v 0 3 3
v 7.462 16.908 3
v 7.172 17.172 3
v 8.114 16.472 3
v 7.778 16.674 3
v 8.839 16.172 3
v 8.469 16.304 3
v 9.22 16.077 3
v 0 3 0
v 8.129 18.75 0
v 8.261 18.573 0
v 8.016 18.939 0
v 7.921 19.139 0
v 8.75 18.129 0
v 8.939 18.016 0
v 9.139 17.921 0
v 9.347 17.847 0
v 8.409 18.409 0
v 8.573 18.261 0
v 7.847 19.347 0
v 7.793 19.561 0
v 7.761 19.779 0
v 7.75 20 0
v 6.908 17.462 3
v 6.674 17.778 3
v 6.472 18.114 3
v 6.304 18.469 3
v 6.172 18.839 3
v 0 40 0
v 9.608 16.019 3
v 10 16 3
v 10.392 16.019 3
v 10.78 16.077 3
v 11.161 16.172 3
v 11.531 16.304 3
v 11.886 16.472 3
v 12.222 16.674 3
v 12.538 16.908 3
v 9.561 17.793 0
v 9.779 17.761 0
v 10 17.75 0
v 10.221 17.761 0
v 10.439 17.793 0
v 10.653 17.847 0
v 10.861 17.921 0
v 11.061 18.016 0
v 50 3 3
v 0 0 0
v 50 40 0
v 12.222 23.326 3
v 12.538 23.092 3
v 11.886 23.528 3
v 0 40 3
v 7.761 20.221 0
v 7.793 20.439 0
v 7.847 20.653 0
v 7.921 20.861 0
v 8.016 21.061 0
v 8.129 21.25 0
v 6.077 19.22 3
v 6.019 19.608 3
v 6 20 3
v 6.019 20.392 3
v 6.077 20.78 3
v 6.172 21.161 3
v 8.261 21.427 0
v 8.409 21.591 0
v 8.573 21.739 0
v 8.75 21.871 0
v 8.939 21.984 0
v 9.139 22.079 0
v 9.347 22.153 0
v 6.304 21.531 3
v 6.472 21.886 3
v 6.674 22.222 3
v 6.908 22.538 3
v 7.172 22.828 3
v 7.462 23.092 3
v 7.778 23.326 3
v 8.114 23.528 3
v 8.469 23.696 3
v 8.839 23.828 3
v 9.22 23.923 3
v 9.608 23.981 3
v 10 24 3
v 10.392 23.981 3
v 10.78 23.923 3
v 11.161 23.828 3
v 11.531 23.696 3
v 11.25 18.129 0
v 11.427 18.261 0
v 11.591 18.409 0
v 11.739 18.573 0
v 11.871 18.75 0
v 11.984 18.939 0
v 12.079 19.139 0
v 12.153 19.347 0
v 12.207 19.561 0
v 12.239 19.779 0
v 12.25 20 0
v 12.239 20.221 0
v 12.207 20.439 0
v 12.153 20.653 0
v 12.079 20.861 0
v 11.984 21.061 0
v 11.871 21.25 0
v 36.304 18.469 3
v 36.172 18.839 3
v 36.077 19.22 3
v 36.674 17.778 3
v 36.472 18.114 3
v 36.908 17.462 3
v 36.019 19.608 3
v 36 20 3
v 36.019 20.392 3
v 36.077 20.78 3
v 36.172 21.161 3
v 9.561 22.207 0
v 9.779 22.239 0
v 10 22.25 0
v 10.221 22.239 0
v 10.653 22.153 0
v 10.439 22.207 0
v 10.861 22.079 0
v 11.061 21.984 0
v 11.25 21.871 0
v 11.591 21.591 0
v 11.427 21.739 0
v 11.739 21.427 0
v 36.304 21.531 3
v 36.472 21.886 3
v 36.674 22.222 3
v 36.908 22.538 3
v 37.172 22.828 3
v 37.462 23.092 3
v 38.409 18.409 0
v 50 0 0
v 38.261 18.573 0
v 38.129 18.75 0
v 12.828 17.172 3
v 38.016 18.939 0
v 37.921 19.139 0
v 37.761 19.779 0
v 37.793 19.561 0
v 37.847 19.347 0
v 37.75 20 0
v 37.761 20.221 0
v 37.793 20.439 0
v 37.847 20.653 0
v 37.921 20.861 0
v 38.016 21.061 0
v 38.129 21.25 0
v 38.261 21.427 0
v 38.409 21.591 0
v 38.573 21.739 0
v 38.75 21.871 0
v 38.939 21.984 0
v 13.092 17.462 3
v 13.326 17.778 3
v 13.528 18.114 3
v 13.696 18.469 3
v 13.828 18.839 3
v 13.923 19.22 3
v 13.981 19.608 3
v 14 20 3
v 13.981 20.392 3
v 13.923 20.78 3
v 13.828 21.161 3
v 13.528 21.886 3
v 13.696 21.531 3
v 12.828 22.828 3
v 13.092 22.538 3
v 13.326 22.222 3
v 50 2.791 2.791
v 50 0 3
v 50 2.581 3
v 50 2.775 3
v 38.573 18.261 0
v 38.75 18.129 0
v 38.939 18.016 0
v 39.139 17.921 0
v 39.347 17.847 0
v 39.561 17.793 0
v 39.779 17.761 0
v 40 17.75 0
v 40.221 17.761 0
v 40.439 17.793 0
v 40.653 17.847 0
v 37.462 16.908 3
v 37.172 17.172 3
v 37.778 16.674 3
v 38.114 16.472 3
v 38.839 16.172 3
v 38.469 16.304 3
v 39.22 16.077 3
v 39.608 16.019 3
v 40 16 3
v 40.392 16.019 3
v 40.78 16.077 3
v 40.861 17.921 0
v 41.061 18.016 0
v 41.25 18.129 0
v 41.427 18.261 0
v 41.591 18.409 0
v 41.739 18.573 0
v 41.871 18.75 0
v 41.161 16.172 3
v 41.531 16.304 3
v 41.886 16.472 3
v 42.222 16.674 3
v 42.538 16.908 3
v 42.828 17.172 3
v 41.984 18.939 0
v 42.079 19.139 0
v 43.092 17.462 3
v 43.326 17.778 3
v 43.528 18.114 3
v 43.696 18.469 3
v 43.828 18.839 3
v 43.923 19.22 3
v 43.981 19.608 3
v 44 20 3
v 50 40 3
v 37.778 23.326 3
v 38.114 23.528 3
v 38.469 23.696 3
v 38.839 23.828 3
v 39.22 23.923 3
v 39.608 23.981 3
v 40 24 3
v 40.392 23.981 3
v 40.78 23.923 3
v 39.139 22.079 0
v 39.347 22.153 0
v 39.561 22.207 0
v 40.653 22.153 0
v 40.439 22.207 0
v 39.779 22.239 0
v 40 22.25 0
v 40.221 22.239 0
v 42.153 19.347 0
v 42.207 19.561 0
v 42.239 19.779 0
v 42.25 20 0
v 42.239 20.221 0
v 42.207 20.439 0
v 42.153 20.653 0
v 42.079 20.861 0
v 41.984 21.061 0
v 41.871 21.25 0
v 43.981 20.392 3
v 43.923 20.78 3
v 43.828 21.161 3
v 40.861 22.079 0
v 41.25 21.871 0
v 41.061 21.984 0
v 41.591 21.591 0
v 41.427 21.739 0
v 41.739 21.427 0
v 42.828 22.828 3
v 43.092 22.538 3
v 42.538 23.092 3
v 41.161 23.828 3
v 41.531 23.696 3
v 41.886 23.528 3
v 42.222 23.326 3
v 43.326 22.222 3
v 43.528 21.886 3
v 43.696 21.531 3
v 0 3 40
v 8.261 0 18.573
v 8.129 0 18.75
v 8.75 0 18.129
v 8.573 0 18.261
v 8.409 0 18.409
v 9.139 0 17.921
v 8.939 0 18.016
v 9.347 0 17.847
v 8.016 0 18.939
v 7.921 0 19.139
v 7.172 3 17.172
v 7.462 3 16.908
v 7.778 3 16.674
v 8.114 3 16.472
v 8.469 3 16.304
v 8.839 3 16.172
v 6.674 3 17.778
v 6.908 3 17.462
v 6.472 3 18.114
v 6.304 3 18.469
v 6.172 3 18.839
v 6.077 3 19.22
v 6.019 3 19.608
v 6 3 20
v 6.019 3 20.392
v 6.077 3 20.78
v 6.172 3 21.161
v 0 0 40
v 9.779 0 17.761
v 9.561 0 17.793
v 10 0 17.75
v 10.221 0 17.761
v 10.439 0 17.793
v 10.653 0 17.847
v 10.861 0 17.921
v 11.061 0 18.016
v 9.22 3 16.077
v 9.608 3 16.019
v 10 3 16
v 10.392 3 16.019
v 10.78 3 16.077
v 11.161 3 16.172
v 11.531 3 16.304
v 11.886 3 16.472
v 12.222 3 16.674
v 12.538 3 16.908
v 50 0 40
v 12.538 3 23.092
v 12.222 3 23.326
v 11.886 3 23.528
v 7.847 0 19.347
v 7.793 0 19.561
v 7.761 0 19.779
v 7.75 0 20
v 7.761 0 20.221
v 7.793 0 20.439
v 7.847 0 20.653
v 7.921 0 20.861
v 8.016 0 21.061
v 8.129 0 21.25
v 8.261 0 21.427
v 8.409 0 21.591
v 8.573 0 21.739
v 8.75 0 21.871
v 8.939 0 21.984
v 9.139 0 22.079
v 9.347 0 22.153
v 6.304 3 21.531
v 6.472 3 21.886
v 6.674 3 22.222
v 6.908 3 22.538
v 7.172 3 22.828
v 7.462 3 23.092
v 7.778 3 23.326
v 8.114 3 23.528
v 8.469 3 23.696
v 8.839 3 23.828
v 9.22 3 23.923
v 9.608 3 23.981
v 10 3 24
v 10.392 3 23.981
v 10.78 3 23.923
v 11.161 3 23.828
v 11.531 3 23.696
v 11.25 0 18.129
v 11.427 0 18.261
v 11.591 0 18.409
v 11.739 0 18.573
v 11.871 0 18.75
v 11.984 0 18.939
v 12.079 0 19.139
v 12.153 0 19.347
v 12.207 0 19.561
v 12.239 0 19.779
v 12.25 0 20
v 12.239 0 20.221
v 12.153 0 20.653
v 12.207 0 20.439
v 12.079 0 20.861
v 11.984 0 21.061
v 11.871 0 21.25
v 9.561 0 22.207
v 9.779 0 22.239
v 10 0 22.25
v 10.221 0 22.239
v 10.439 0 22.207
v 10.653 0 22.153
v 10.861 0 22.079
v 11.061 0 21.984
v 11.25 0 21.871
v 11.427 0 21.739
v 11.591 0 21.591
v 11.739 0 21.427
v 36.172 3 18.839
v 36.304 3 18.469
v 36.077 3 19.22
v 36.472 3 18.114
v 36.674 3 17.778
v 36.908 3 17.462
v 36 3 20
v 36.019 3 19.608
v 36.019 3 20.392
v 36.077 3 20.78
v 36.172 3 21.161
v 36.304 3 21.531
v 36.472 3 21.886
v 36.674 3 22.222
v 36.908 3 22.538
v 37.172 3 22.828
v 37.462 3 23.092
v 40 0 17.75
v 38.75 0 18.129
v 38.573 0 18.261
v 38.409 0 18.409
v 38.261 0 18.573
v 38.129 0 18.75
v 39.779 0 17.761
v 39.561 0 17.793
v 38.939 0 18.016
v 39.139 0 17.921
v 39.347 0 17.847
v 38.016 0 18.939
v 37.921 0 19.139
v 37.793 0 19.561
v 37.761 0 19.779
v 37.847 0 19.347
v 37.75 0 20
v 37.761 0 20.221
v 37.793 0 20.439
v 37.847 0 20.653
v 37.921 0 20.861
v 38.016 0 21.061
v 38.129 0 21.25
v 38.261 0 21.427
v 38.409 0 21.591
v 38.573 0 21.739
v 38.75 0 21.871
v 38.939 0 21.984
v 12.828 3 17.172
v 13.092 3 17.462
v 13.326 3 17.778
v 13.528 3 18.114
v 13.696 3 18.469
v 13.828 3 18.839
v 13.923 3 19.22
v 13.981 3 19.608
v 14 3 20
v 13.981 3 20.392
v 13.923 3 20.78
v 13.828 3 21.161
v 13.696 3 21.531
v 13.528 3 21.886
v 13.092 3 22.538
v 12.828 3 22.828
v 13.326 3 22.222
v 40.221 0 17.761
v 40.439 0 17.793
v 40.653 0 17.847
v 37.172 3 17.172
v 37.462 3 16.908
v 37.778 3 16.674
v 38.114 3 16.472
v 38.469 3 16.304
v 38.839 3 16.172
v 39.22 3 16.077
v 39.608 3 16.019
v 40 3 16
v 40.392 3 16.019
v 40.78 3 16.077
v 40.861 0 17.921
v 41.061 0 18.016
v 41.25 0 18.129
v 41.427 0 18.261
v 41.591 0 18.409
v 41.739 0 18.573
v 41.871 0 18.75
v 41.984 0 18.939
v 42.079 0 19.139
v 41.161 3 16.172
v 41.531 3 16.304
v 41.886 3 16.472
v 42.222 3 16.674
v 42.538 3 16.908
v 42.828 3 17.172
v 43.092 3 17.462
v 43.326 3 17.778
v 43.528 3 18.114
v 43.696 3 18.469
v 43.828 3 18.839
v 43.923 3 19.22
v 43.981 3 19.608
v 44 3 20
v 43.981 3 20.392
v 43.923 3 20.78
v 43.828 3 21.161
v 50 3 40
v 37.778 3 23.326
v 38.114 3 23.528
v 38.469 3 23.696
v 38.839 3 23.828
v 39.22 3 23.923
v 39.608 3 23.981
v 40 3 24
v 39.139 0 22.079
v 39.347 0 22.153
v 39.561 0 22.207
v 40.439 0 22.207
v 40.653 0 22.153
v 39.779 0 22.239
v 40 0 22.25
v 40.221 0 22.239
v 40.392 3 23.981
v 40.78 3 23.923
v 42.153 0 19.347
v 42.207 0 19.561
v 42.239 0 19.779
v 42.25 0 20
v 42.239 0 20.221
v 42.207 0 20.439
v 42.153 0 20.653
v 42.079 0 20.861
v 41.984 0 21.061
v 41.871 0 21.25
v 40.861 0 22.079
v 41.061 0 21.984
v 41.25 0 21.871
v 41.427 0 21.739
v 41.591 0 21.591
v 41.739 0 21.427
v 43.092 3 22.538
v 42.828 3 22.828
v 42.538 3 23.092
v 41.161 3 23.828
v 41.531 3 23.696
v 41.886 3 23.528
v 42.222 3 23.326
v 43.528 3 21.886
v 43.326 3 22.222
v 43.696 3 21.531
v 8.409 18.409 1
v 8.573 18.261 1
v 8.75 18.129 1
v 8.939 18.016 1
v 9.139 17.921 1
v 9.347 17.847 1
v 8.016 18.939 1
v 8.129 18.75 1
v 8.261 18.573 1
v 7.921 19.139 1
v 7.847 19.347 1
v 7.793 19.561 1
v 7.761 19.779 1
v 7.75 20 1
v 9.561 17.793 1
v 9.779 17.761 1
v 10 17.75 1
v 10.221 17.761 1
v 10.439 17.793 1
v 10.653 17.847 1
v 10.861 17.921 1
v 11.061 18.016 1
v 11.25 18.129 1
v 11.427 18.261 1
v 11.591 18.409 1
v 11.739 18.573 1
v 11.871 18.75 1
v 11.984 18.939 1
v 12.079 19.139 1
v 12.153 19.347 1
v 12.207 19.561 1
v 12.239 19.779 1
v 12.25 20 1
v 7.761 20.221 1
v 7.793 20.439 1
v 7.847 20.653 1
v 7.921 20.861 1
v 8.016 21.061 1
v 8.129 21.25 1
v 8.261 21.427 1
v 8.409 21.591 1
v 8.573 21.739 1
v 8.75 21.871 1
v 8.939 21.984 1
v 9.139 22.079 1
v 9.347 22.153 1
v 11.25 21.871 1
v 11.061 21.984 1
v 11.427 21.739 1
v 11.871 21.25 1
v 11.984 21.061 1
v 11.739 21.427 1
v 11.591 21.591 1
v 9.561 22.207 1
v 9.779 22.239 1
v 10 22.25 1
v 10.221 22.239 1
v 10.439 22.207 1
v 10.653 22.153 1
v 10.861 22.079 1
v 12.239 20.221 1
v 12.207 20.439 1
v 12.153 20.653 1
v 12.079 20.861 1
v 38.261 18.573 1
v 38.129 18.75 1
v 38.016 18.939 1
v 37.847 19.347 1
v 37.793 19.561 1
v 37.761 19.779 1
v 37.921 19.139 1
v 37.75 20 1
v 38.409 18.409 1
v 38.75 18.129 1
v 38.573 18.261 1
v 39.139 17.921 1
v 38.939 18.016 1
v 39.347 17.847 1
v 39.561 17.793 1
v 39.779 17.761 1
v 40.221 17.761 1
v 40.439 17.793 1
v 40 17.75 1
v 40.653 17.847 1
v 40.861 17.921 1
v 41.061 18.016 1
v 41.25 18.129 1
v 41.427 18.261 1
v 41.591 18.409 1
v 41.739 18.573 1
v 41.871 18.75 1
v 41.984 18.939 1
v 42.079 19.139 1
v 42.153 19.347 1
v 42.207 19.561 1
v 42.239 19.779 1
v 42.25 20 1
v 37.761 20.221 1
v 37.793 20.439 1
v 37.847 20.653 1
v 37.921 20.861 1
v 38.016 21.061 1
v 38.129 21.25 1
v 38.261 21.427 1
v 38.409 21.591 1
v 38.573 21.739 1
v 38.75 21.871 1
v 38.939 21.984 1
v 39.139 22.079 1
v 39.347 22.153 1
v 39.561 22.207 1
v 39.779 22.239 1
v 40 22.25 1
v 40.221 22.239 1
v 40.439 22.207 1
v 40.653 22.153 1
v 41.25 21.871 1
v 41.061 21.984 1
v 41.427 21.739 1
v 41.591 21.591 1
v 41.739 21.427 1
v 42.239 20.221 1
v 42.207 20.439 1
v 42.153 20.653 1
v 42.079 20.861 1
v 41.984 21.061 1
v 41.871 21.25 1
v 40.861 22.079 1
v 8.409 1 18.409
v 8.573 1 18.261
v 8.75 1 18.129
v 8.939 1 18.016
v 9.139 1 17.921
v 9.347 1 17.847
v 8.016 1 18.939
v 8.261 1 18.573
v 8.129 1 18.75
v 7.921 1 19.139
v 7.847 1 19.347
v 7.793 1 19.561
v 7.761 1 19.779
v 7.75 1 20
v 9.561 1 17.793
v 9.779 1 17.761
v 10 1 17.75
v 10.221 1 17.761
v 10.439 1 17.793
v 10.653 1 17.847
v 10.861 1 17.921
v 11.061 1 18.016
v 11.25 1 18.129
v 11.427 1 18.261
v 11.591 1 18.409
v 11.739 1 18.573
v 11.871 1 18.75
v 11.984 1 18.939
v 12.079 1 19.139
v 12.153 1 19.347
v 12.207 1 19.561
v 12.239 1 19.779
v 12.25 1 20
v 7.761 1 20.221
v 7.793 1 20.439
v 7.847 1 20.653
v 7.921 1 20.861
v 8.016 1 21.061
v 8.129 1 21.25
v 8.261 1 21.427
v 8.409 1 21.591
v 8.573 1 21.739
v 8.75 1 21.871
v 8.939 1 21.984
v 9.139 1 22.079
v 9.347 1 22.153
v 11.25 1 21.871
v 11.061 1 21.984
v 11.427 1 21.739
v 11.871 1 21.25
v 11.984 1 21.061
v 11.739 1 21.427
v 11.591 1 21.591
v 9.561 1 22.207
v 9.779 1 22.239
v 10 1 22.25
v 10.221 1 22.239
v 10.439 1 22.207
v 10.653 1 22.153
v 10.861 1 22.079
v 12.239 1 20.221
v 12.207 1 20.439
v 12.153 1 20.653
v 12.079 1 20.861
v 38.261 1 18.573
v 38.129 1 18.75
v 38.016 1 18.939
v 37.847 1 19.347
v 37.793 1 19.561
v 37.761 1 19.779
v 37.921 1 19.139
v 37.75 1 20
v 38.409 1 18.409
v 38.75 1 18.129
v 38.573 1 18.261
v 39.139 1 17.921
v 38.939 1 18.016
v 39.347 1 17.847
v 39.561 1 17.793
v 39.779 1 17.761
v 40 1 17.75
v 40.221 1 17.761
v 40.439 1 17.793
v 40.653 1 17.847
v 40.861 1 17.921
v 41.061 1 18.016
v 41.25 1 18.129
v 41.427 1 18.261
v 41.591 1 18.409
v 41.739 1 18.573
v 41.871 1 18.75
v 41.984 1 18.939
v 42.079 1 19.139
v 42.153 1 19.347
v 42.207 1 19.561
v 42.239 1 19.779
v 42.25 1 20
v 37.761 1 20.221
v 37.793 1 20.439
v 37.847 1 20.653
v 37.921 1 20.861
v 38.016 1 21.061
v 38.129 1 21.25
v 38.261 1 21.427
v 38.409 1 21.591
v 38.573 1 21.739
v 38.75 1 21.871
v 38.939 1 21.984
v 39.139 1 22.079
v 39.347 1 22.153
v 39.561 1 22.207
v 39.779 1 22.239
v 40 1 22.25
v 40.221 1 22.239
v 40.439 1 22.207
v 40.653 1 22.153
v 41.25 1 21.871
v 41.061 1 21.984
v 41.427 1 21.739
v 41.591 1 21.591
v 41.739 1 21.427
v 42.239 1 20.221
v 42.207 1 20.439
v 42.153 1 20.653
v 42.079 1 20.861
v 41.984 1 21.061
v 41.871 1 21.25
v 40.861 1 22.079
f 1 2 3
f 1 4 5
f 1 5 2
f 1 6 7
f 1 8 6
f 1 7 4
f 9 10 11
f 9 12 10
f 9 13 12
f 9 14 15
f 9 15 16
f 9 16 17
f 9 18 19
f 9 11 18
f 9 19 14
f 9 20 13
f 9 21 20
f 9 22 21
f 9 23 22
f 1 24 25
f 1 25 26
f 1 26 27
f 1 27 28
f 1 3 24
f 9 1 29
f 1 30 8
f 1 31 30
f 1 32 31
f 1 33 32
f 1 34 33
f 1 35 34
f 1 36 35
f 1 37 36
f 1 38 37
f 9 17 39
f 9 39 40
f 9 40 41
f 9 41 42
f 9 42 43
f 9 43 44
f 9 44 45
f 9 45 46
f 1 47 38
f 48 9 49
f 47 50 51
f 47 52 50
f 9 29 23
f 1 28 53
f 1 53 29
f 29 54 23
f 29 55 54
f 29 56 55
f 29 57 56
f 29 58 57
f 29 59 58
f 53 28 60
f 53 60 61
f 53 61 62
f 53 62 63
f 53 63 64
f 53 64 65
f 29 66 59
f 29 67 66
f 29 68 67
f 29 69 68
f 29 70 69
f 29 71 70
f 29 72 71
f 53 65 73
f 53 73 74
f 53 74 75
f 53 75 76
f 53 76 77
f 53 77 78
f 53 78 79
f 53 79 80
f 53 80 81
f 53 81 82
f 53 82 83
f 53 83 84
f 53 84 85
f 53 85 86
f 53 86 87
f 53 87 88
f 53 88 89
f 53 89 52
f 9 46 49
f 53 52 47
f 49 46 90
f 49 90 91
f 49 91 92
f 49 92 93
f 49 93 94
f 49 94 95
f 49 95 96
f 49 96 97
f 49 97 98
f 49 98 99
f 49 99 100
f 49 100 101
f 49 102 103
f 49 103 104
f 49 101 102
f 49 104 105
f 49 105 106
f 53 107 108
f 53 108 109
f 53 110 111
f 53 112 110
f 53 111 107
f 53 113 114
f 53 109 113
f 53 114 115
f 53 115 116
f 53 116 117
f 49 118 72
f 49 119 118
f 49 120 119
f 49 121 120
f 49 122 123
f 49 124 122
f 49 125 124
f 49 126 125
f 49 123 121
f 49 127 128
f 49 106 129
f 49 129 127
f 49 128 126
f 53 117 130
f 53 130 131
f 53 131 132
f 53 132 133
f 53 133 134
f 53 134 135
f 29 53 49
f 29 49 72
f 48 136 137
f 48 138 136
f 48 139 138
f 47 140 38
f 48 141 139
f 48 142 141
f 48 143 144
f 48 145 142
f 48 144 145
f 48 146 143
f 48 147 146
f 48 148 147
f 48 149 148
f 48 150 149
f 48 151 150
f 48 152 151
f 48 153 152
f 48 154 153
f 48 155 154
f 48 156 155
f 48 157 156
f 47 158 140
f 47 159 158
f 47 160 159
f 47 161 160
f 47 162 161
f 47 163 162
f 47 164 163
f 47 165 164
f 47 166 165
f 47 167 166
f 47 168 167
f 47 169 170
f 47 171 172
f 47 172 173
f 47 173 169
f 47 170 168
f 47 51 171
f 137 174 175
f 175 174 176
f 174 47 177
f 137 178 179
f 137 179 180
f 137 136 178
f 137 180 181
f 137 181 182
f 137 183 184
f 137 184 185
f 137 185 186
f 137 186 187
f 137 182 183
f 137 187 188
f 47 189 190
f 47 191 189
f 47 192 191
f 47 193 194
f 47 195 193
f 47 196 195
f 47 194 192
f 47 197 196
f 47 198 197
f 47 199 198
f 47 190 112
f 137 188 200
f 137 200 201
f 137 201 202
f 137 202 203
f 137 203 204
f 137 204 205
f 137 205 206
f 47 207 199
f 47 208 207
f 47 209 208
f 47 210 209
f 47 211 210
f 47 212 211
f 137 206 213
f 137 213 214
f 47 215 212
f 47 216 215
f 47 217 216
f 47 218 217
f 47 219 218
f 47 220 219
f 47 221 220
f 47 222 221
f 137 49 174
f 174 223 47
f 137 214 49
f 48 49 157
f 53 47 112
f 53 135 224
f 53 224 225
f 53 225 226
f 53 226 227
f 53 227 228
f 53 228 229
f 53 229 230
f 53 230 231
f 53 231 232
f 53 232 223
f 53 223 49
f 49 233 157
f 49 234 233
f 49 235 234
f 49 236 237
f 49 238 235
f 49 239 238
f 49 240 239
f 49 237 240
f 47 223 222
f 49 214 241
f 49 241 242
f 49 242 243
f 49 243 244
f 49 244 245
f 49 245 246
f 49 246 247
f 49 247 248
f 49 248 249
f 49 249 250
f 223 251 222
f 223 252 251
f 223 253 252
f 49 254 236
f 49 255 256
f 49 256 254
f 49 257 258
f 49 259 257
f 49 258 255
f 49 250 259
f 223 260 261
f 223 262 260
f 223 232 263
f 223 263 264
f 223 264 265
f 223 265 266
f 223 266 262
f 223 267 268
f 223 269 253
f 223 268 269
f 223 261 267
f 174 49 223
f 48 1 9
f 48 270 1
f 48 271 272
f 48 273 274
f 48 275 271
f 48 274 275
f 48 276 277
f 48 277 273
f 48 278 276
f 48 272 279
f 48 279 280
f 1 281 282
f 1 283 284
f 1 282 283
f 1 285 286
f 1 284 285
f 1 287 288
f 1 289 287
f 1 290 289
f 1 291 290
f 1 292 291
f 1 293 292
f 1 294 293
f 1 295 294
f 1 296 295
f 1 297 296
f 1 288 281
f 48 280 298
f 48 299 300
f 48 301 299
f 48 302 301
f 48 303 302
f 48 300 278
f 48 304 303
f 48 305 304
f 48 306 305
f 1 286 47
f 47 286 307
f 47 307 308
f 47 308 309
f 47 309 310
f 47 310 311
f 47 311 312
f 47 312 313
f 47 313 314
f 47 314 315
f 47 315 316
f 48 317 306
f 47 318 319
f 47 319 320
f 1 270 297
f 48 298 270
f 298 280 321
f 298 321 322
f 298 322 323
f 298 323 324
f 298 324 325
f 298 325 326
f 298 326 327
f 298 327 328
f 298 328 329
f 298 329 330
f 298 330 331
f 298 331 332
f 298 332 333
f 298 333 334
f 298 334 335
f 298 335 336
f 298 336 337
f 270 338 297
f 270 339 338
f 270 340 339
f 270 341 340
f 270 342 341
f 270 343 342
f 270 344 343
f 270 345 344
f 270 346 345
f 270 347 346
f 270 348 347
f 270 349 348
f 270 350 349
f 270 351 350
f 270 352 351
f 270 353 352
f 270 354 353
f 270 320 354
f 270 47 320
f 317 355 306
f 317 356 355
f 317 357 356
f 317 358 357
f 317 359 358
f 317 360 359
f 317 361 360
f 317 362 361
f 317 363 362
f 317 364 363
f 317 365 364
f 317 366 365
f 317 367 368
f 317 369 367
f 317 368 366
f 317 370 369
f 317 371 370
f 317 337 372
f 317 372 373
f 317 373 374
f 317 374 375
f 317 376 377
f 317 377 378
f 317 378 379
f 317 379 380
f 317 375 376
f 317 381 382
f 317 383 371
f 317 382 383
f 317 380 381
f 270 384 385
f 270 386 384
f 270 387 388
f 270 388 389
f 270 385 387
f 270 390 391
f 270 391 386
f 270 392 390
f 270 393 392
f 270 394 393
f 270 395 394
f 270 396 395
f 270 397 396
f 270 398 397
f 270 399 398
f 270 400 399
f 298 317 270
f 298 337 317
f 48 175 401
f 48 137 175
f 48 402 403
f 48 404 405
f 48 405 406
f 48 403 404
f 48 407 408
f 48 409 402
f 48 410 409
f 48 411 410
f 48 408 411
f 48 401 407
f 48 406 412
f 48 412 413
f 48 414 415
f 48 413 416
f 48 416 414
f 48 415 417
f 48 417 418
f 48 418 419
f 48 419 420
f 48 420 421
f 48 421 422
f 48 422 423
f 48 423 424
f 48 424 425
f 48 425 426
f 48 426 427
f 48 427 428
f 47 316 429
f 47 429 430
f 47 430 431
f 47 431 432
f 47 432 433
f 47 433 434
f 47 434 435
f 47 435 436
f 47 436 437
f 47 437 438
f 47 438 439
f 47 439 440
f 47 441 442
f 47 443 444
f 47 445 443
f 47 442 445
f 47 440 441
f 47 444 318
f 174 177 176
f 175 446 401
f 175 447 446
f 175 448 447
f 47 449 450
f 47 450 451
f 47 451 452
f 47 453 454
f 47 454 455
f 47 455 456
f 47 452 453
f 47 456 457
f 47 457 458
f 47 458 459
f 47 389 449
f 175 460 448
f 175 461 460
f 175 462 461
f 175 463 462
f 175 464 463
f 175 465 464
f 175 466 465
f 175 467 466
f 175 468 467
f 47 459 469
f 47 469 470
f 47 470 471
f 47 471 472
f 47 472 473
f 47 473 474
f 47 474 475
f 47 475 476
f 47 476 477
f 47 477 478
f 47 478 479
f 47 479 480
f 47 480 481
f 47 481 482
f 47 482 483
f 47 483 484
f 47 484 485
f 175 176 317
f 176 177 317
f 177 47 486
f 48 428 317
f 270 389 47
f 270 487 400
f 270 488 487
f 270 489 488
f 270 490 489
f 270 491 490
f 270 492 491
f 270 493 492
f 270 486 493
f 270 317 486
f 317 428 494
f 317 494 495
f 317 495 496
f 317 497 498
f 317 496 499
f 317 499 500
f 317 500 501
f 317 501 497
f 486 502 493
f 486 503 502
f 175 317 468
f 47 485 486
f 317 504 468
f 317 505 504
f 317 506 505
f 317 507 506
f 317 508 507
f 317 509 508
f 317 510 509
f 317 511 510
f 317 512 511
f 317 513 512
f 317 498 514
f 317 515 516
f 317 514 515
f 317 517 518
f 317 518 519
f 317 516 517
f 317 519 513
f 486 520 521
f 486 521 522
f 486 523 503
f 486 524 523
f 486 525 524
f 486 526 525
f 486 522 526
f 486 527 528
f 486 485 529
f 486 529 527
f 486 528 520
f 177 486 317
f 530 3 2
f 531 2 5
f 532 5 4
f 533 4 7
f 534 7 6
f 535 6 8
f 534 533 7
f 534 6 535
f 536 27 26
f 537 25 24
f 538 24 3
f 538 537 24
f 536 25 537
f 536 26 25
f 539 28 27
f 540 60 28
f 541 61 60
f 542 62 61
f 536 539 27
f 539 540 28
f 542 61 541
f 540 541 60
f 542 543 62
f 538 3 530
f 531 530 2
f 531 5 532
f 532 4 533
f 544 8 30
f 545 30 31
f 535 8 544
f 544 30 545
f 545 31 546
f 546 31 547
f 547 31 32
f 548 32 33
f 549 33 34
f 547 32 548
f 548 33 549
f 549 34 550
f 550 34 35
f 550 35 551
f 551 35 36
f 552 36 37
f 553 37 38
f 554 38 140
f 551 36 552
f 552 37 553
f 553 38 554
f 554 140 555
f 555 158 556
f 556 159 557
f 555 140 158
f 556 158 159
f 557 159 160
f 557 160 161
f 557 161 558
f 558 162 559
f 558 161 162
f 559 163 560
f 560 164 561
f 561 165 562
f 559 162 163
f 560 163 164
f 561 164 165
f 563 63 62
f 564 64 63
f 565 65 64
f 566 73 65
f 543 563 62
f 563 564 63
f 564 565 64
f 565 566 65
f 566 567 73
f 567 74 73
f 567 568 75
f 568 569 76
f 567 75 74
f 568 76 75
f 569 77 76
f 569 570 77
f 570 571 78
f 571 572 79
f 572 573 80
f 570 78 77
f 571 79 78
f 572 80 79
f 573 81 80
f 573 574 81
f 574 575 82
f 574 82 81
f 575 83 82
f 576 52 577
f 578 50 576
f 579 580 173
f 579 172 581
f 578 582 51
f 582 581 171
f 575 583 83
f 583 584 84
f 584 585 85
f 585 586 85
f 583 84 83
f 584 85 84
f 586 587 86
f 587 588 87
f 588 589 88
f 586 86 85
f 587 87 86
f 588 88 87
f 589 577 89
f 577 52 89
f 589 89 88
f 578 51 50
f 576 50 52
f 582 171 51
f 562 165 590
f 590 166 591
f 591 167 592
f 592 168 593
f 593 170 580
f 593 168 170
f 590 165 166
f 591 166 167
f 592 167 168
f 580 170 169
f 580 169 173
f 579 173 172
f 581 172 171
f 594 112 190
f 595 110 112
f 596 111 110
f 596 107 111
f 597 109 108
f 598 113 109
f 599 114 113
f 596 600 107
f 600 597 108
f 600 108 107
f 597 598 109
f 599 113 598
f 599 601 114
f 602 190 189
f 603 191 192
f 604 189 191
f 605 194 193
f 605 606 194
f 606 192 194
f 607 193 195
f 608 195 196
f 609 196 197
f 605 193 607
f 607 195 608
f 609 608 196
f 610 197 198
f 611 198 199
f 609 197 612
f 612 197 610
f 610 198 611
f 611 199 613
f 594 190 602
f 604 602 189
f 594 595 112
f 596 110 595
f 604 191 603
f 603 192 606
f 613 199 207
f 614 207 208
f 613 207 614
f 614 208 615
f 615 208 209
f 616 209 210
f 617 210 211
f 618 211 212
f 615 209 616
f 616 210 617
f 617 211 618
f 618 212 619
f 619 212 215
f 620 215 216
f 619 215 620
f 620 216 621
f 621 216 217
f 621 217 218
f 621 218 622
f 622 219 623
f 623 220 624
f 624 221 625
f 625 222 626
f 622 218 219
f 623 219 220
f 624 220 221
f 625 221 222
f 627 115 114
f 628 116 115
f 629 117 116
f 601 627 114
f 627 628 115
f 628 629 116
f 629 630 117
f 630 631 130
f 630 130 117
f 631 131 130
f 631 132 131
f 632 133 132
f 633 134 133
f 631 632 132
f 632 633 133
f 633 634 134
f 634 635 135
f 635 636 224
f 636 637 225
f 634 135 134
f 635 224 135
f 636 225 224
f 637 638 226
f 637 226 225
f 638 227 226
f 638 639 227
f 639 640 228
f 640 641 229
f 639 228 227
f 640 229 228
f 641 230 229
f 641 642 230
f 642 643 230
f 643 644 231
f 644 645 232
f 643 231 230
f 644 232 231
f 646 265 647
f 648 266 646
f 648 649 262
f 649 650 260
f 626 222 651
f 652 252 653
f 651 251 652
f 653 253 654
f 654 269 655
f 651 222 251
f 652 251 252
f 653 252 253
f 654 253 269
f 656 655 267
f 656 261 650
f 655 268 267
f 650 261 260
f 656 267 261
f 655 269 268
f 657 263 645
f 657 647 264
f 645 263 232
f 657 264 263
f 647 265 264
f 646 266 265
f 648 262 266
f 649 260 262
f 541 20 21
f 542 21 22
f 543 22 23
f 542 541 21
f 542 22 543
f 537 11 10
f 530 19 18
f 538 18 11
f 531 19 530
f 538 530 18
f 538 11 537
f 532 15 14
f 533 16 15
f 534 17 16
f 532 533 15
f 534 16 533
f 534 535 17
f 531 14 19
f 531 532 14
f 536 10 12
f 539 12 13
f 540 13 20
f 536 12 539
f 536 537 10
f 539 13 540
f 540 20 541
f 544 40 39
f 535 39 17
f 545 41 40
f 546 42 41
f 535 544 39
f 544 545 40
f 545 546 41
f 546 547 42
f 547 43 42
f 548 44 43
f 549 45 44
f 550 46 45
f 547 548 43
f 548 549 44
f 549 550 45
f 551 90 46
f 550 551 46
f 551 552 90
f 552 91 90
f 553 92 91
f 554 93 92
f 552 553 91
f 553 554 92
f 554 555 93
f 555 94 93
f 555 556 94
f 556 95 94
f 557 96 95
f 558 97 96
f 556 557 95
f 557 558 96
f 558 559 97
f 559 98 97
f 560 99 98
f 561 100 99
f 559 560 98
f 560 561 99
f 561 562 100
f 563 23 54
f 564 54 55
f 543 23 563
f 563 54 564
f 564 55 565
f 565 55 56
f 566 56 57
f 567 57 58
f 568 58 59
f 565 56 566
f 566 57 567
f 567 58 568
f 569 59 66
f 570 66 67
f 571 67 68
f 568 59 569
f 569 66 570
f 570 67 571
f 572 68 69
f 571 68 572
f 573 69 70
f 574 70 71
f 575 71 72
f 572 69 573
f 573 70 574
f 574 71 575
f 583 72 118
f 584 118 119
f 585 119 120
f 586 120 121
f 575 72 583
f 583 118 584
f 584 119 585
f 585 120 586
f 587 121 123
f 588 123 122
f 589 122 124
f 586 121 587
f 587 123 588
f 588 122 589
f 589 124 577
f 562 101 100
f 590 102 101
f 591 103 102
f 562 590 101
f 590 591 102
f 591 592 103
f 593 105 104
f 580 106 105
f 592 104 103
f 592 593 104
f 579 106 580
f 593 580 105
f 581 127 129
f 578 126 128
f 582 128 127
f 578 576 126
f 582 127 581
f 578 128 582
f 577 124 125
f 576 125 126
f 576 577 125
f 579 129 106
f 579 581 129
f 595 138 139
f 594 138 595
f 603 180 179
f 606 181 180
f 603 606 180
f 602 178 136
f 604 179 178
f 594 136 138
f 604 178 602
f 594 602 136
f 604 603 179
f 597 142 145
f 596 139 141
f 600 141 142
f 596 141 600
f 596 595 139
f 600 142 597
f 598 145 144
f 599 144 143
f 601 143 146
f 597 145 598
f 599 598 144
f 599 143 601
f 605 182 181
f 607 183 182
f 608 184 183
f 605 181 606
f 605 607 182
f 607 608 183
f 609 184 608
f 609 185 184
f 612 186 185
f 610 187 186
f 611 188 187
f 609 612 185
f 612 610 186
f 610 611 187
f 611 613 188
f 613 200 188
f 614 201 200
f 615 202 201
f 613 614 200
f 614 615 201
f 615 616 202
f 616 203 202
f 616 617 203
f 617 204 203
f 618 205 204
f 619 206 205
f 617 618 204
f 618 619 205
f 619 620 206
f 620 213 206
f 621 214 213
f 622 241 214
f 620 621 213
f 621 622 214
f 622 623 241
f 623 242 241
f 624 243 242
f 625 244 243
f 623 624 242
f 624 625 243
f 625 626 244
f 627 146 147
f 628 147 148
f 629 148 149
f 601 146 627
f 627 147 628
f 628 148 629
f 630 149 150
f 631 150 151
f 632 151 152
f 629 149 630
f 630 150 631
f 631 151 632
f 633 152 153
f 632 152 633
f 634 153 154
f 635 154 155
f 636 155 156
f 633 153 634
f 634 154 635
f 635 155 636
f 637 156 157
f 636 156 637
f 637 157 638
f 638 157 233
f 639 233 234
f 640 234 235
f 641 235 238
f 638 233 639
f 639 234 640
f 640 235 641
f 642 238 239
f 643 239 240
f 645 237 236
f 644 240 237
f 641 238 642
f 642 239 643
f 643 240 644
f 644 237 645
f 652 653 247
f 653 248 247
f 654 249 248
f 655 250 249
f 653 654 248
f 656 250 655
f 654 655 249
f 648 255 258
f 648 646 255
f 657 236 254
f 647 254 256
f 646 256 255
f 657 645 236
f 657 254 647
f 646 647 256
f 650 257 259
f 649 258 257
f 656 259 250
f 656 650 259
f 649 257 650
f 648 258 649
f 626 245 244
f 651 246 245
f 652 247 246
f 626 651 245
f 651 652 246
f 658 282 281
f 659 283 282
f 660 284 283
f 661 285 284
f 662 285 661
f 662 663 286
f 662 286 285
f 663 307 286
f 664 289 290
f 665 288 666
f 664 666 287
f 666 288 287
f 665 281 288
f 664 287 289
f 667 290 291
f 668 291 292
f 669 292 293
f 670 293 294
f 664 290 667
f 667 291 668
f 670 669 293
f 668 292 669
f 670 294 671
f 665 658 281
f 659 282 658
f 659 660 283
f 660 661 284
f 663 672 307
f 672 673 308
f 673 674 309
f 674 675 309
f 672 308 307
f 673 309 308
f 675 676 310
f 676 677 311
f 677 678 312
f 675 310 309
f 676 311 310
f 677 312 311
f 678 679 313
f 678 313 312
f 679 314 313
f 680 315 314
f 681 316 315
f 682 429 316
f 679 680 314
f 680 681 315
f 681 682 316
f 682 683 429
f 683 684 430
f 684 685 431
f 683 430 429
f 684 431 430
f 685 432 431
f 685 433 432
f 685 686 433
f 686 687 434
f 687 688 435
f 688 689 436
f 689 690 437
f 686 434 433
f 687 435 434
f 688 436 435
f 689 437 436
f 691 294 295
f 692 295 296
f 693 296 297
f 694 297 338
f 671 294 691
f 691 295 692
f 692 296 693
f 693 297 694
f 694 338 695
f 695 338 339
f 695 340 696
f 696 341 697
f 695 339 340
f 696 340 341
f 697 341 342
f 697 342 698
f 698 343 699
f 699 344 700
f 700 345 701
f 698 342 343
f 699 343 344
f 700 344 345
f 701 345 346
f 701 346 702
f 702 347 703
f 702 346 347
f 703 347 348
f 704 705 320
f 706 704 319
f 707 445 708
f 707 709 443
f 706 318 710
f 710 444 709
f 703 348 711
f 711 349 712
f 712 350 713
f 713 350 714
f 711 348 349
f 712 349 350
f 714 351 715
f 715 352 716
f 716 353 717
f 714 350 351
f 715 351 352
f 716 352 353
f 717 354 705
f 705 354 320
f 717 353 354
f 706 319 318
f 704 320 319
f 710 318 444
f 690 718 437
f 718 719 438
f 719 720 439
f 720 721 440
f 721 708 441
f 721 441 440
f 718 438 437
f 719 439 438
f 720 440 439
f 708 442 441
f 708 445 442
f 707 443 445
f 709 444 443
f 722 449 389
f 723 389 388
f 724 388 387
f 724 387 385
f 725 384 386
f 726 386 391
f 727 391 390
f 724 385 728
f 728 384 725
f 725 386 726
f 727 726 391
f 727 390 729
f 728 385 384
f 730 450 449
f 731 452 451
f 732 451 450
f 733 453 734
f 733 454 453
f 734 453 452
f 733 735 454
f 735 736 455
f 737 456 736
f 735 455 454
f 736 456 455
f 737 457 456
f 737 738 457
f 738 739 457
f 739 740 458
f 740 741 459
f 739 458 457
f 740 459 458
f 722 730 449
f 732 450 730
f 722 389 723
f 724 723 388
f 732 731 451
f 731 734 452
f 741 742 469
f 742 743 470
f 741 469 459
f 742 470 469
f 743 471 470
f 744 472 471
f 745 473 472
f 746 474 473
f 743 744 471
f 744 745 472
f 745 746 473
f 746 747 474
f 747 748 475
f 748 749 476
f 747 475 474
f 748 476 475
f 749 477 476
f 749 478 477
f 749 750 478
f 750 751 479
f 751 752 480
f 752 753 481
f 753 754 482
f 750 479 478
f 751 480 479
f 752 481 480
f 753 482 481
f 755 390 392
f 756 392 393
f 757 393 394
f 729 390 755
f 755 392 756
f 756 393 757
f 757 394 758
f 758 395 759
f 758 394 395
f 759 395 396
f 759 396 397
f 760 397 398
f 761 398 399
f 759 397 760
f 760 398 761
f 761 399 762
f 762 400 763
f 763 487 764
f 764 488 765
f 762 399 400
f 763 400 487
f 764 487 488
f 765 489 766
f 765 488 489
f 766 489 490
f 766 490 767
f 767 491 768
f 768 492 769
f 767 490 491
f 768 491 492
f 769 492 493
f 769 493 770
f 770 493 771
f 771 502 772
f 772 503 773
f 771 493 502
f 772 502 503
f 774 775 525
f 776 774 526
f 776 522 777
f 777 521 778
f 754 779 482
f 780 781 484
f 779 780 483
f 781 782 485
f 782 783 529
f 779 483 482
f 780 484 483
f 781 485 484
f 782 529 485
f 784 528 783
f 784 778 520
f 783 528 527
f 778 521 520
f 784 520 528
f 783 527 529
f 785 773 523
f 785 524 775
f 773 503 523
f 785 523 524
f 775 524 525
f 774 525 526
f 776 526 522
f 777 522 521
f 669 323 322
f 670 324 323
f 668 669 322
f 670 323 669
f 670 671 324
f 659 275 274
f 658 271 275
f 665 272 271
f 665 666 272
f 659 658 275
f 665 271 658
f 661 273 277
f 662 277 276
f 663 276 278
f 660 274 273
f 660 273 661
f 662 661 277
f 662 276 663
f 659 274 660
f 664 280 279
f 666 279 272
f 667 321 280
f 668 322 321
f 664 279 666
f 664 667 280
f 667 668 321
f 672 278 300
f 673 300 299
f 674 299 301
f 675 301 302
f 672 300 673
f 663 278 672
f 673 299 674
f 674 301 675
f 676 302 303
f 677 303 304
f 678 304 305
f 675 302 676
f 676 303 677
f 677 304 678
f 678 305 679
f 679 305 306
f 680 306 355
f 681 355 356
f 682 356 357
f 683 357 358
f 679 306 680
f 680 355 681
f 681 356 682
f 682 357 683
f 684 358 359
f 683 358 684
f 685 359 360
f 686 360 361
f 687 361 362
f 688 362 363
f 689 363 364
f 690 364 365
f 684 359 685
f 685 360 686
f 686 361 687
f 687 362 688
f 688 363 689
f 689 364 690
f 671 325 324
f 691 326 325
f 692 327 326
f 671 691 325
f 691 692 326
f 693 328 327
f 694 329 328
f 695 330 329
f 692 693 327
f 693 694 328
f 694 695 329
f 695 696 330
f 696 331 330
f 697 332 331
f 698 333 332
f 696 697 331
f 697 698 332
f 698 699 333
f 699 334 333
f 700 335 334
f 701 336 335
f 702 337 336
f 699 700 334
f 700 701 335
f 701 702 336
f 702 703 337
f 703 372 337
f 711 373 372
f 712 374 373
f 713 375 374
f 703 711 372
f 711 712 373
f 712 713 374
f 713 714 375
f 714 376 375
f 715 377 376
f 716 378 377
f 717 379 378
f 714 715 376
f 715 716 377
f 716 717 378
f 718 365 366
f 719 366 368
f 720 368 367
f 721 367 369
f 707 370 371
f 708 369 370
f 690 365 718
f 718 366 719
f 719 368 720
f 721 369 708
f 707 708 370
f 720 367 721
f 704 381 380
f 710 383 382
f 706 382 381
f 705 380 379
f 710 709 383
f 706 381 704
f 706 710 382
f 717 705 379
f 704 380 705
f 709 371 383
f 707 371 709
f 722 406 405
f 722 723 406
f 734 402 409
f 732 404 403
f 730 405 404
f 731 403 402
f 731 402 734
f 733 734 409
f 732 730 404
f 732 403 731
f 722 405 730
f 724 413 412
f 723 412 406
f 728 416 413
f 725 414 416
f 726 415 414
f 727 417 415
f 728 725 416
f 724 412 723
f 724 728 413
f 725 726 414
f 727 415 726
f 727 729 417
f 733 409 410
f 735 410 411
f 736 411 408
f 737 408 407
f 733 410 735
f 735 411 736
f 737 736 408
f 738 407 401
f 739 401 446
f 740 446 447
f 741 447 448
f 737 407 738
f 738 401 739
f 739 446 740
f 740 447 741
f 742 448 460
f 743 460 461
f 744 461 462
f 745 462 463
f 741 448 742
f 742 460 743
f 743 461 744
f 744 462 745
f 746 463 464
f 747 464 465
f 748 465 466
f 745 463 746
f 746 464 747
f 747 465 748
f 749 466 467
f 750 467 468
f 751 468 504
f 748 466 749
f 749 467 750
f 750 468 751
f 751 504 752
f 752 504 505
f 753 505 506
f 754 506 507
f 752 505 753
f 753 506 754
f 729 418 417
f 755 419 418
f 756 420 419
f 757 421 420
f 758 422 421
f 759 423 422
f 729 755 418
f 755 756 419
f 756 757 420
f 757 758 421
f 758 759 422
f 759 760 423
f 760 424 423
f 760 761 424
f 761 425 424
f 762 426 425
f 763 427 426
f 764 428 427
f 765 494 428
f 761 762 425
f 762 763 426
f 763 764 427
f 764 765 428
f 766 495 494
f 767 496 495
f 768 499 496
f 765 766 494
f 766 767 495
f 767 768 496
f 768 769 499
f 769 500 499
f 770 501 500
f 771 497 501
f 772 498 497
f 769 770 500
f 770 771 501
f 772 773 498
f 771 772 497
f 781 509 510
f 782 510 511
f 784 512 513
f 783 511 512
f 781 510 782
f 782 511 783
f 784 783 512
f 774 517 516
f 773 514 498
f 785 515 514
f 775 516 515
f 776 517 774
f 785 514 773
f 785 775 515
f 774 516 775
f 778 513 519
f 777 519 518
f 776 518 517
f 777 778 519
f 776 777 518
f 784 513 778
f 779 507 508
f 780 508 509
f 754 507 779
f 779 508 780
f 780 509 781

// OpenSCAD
// ===============================================
//                Parameters
// ===============================================

// --- Bracket Dimensions ---
width     = 50;  // Width on X-axis
depth     = 40;  // Horizontal flange depth on Y-axis
height    = 40;  // Vertical flange height on Z-axis
thickness = 3;   // Thickness of the flanges

// --- M4 Countersunk Hole Dimensions ---
hole_dia  = 4.5; // Through-hole diameter
cs_dia    = 8;   // Countersink top diameter
cs_depth  = 2;   // Countersink depth

// --- Hole Positioning ---
// X-coordinates for the two holes on each flange
hole_pos_x_list = [10, width - 10]; 
// Y-coordinate for holes on the horizontal flange (centerline)
hole_pos_y = depth / 2;
// Z-coordinate for holes on the vertical flange (centerline)
hole_pos_z = height / 2;

// --- Rendering Quality ---
$fn = 64;


// ===============================================
//                  Model
// ===============================================
difference() {
    
    // 1. Create the main body of the L-bracket
    // The inner corner is at the origin [0, 0, 0]
    union() {
        // Horizontal flange, extending in +Y direction
        cube([width, depth, thickness]);
        
        // Vertical flange, extending in +Z direction
        cube([width, thickness, height]);
    }
    
    // 2. Create and subtract the countersunk holes
    
    // --- Holes on the horizontal flange ---
    // The countersinks face downwards (towards -Z)
    for (x_pos = hole_pos_x_list) {
        // Position the cutter at the top surface (z=thickness) and rotate it to face down
        translate([x_pos, hole_pos_y, thickness])
        rotate(a=[180, 0, 0]) {
            // A small epsilon for clean subtraction
            eps = 0.1;
            // Countersink cone (frustum)
            cylinder(h = cs_depth, d1 = cs_dia, d2 = hole_dia);
            // Through-hole
            cylinder(h = thickness + eps, d = hole_dia);
        }
    }
    
    // --- Holes on the vertical flange ---
    // The countersinks face forwards (towards -Y)
    for (x_pos = hole_pos_x_list) {
        // Position the cutter at the front surface (y=thickness) and rotate it to face forward
        translate([x_pos, thickness, hole_pos_z])
        rotate(a=[90, 0, 0]) {
            // A small epsilon for clean subtraction
            eps = 0.1;
            // Countersink cone (frustum)
            cylinder(h = cs_depth, d1 = cs_dia, d2 = hole_dia);
            // Through-hole
            cylinder(h = thickness + eps, d = hole_dia);
        }
    }
}
